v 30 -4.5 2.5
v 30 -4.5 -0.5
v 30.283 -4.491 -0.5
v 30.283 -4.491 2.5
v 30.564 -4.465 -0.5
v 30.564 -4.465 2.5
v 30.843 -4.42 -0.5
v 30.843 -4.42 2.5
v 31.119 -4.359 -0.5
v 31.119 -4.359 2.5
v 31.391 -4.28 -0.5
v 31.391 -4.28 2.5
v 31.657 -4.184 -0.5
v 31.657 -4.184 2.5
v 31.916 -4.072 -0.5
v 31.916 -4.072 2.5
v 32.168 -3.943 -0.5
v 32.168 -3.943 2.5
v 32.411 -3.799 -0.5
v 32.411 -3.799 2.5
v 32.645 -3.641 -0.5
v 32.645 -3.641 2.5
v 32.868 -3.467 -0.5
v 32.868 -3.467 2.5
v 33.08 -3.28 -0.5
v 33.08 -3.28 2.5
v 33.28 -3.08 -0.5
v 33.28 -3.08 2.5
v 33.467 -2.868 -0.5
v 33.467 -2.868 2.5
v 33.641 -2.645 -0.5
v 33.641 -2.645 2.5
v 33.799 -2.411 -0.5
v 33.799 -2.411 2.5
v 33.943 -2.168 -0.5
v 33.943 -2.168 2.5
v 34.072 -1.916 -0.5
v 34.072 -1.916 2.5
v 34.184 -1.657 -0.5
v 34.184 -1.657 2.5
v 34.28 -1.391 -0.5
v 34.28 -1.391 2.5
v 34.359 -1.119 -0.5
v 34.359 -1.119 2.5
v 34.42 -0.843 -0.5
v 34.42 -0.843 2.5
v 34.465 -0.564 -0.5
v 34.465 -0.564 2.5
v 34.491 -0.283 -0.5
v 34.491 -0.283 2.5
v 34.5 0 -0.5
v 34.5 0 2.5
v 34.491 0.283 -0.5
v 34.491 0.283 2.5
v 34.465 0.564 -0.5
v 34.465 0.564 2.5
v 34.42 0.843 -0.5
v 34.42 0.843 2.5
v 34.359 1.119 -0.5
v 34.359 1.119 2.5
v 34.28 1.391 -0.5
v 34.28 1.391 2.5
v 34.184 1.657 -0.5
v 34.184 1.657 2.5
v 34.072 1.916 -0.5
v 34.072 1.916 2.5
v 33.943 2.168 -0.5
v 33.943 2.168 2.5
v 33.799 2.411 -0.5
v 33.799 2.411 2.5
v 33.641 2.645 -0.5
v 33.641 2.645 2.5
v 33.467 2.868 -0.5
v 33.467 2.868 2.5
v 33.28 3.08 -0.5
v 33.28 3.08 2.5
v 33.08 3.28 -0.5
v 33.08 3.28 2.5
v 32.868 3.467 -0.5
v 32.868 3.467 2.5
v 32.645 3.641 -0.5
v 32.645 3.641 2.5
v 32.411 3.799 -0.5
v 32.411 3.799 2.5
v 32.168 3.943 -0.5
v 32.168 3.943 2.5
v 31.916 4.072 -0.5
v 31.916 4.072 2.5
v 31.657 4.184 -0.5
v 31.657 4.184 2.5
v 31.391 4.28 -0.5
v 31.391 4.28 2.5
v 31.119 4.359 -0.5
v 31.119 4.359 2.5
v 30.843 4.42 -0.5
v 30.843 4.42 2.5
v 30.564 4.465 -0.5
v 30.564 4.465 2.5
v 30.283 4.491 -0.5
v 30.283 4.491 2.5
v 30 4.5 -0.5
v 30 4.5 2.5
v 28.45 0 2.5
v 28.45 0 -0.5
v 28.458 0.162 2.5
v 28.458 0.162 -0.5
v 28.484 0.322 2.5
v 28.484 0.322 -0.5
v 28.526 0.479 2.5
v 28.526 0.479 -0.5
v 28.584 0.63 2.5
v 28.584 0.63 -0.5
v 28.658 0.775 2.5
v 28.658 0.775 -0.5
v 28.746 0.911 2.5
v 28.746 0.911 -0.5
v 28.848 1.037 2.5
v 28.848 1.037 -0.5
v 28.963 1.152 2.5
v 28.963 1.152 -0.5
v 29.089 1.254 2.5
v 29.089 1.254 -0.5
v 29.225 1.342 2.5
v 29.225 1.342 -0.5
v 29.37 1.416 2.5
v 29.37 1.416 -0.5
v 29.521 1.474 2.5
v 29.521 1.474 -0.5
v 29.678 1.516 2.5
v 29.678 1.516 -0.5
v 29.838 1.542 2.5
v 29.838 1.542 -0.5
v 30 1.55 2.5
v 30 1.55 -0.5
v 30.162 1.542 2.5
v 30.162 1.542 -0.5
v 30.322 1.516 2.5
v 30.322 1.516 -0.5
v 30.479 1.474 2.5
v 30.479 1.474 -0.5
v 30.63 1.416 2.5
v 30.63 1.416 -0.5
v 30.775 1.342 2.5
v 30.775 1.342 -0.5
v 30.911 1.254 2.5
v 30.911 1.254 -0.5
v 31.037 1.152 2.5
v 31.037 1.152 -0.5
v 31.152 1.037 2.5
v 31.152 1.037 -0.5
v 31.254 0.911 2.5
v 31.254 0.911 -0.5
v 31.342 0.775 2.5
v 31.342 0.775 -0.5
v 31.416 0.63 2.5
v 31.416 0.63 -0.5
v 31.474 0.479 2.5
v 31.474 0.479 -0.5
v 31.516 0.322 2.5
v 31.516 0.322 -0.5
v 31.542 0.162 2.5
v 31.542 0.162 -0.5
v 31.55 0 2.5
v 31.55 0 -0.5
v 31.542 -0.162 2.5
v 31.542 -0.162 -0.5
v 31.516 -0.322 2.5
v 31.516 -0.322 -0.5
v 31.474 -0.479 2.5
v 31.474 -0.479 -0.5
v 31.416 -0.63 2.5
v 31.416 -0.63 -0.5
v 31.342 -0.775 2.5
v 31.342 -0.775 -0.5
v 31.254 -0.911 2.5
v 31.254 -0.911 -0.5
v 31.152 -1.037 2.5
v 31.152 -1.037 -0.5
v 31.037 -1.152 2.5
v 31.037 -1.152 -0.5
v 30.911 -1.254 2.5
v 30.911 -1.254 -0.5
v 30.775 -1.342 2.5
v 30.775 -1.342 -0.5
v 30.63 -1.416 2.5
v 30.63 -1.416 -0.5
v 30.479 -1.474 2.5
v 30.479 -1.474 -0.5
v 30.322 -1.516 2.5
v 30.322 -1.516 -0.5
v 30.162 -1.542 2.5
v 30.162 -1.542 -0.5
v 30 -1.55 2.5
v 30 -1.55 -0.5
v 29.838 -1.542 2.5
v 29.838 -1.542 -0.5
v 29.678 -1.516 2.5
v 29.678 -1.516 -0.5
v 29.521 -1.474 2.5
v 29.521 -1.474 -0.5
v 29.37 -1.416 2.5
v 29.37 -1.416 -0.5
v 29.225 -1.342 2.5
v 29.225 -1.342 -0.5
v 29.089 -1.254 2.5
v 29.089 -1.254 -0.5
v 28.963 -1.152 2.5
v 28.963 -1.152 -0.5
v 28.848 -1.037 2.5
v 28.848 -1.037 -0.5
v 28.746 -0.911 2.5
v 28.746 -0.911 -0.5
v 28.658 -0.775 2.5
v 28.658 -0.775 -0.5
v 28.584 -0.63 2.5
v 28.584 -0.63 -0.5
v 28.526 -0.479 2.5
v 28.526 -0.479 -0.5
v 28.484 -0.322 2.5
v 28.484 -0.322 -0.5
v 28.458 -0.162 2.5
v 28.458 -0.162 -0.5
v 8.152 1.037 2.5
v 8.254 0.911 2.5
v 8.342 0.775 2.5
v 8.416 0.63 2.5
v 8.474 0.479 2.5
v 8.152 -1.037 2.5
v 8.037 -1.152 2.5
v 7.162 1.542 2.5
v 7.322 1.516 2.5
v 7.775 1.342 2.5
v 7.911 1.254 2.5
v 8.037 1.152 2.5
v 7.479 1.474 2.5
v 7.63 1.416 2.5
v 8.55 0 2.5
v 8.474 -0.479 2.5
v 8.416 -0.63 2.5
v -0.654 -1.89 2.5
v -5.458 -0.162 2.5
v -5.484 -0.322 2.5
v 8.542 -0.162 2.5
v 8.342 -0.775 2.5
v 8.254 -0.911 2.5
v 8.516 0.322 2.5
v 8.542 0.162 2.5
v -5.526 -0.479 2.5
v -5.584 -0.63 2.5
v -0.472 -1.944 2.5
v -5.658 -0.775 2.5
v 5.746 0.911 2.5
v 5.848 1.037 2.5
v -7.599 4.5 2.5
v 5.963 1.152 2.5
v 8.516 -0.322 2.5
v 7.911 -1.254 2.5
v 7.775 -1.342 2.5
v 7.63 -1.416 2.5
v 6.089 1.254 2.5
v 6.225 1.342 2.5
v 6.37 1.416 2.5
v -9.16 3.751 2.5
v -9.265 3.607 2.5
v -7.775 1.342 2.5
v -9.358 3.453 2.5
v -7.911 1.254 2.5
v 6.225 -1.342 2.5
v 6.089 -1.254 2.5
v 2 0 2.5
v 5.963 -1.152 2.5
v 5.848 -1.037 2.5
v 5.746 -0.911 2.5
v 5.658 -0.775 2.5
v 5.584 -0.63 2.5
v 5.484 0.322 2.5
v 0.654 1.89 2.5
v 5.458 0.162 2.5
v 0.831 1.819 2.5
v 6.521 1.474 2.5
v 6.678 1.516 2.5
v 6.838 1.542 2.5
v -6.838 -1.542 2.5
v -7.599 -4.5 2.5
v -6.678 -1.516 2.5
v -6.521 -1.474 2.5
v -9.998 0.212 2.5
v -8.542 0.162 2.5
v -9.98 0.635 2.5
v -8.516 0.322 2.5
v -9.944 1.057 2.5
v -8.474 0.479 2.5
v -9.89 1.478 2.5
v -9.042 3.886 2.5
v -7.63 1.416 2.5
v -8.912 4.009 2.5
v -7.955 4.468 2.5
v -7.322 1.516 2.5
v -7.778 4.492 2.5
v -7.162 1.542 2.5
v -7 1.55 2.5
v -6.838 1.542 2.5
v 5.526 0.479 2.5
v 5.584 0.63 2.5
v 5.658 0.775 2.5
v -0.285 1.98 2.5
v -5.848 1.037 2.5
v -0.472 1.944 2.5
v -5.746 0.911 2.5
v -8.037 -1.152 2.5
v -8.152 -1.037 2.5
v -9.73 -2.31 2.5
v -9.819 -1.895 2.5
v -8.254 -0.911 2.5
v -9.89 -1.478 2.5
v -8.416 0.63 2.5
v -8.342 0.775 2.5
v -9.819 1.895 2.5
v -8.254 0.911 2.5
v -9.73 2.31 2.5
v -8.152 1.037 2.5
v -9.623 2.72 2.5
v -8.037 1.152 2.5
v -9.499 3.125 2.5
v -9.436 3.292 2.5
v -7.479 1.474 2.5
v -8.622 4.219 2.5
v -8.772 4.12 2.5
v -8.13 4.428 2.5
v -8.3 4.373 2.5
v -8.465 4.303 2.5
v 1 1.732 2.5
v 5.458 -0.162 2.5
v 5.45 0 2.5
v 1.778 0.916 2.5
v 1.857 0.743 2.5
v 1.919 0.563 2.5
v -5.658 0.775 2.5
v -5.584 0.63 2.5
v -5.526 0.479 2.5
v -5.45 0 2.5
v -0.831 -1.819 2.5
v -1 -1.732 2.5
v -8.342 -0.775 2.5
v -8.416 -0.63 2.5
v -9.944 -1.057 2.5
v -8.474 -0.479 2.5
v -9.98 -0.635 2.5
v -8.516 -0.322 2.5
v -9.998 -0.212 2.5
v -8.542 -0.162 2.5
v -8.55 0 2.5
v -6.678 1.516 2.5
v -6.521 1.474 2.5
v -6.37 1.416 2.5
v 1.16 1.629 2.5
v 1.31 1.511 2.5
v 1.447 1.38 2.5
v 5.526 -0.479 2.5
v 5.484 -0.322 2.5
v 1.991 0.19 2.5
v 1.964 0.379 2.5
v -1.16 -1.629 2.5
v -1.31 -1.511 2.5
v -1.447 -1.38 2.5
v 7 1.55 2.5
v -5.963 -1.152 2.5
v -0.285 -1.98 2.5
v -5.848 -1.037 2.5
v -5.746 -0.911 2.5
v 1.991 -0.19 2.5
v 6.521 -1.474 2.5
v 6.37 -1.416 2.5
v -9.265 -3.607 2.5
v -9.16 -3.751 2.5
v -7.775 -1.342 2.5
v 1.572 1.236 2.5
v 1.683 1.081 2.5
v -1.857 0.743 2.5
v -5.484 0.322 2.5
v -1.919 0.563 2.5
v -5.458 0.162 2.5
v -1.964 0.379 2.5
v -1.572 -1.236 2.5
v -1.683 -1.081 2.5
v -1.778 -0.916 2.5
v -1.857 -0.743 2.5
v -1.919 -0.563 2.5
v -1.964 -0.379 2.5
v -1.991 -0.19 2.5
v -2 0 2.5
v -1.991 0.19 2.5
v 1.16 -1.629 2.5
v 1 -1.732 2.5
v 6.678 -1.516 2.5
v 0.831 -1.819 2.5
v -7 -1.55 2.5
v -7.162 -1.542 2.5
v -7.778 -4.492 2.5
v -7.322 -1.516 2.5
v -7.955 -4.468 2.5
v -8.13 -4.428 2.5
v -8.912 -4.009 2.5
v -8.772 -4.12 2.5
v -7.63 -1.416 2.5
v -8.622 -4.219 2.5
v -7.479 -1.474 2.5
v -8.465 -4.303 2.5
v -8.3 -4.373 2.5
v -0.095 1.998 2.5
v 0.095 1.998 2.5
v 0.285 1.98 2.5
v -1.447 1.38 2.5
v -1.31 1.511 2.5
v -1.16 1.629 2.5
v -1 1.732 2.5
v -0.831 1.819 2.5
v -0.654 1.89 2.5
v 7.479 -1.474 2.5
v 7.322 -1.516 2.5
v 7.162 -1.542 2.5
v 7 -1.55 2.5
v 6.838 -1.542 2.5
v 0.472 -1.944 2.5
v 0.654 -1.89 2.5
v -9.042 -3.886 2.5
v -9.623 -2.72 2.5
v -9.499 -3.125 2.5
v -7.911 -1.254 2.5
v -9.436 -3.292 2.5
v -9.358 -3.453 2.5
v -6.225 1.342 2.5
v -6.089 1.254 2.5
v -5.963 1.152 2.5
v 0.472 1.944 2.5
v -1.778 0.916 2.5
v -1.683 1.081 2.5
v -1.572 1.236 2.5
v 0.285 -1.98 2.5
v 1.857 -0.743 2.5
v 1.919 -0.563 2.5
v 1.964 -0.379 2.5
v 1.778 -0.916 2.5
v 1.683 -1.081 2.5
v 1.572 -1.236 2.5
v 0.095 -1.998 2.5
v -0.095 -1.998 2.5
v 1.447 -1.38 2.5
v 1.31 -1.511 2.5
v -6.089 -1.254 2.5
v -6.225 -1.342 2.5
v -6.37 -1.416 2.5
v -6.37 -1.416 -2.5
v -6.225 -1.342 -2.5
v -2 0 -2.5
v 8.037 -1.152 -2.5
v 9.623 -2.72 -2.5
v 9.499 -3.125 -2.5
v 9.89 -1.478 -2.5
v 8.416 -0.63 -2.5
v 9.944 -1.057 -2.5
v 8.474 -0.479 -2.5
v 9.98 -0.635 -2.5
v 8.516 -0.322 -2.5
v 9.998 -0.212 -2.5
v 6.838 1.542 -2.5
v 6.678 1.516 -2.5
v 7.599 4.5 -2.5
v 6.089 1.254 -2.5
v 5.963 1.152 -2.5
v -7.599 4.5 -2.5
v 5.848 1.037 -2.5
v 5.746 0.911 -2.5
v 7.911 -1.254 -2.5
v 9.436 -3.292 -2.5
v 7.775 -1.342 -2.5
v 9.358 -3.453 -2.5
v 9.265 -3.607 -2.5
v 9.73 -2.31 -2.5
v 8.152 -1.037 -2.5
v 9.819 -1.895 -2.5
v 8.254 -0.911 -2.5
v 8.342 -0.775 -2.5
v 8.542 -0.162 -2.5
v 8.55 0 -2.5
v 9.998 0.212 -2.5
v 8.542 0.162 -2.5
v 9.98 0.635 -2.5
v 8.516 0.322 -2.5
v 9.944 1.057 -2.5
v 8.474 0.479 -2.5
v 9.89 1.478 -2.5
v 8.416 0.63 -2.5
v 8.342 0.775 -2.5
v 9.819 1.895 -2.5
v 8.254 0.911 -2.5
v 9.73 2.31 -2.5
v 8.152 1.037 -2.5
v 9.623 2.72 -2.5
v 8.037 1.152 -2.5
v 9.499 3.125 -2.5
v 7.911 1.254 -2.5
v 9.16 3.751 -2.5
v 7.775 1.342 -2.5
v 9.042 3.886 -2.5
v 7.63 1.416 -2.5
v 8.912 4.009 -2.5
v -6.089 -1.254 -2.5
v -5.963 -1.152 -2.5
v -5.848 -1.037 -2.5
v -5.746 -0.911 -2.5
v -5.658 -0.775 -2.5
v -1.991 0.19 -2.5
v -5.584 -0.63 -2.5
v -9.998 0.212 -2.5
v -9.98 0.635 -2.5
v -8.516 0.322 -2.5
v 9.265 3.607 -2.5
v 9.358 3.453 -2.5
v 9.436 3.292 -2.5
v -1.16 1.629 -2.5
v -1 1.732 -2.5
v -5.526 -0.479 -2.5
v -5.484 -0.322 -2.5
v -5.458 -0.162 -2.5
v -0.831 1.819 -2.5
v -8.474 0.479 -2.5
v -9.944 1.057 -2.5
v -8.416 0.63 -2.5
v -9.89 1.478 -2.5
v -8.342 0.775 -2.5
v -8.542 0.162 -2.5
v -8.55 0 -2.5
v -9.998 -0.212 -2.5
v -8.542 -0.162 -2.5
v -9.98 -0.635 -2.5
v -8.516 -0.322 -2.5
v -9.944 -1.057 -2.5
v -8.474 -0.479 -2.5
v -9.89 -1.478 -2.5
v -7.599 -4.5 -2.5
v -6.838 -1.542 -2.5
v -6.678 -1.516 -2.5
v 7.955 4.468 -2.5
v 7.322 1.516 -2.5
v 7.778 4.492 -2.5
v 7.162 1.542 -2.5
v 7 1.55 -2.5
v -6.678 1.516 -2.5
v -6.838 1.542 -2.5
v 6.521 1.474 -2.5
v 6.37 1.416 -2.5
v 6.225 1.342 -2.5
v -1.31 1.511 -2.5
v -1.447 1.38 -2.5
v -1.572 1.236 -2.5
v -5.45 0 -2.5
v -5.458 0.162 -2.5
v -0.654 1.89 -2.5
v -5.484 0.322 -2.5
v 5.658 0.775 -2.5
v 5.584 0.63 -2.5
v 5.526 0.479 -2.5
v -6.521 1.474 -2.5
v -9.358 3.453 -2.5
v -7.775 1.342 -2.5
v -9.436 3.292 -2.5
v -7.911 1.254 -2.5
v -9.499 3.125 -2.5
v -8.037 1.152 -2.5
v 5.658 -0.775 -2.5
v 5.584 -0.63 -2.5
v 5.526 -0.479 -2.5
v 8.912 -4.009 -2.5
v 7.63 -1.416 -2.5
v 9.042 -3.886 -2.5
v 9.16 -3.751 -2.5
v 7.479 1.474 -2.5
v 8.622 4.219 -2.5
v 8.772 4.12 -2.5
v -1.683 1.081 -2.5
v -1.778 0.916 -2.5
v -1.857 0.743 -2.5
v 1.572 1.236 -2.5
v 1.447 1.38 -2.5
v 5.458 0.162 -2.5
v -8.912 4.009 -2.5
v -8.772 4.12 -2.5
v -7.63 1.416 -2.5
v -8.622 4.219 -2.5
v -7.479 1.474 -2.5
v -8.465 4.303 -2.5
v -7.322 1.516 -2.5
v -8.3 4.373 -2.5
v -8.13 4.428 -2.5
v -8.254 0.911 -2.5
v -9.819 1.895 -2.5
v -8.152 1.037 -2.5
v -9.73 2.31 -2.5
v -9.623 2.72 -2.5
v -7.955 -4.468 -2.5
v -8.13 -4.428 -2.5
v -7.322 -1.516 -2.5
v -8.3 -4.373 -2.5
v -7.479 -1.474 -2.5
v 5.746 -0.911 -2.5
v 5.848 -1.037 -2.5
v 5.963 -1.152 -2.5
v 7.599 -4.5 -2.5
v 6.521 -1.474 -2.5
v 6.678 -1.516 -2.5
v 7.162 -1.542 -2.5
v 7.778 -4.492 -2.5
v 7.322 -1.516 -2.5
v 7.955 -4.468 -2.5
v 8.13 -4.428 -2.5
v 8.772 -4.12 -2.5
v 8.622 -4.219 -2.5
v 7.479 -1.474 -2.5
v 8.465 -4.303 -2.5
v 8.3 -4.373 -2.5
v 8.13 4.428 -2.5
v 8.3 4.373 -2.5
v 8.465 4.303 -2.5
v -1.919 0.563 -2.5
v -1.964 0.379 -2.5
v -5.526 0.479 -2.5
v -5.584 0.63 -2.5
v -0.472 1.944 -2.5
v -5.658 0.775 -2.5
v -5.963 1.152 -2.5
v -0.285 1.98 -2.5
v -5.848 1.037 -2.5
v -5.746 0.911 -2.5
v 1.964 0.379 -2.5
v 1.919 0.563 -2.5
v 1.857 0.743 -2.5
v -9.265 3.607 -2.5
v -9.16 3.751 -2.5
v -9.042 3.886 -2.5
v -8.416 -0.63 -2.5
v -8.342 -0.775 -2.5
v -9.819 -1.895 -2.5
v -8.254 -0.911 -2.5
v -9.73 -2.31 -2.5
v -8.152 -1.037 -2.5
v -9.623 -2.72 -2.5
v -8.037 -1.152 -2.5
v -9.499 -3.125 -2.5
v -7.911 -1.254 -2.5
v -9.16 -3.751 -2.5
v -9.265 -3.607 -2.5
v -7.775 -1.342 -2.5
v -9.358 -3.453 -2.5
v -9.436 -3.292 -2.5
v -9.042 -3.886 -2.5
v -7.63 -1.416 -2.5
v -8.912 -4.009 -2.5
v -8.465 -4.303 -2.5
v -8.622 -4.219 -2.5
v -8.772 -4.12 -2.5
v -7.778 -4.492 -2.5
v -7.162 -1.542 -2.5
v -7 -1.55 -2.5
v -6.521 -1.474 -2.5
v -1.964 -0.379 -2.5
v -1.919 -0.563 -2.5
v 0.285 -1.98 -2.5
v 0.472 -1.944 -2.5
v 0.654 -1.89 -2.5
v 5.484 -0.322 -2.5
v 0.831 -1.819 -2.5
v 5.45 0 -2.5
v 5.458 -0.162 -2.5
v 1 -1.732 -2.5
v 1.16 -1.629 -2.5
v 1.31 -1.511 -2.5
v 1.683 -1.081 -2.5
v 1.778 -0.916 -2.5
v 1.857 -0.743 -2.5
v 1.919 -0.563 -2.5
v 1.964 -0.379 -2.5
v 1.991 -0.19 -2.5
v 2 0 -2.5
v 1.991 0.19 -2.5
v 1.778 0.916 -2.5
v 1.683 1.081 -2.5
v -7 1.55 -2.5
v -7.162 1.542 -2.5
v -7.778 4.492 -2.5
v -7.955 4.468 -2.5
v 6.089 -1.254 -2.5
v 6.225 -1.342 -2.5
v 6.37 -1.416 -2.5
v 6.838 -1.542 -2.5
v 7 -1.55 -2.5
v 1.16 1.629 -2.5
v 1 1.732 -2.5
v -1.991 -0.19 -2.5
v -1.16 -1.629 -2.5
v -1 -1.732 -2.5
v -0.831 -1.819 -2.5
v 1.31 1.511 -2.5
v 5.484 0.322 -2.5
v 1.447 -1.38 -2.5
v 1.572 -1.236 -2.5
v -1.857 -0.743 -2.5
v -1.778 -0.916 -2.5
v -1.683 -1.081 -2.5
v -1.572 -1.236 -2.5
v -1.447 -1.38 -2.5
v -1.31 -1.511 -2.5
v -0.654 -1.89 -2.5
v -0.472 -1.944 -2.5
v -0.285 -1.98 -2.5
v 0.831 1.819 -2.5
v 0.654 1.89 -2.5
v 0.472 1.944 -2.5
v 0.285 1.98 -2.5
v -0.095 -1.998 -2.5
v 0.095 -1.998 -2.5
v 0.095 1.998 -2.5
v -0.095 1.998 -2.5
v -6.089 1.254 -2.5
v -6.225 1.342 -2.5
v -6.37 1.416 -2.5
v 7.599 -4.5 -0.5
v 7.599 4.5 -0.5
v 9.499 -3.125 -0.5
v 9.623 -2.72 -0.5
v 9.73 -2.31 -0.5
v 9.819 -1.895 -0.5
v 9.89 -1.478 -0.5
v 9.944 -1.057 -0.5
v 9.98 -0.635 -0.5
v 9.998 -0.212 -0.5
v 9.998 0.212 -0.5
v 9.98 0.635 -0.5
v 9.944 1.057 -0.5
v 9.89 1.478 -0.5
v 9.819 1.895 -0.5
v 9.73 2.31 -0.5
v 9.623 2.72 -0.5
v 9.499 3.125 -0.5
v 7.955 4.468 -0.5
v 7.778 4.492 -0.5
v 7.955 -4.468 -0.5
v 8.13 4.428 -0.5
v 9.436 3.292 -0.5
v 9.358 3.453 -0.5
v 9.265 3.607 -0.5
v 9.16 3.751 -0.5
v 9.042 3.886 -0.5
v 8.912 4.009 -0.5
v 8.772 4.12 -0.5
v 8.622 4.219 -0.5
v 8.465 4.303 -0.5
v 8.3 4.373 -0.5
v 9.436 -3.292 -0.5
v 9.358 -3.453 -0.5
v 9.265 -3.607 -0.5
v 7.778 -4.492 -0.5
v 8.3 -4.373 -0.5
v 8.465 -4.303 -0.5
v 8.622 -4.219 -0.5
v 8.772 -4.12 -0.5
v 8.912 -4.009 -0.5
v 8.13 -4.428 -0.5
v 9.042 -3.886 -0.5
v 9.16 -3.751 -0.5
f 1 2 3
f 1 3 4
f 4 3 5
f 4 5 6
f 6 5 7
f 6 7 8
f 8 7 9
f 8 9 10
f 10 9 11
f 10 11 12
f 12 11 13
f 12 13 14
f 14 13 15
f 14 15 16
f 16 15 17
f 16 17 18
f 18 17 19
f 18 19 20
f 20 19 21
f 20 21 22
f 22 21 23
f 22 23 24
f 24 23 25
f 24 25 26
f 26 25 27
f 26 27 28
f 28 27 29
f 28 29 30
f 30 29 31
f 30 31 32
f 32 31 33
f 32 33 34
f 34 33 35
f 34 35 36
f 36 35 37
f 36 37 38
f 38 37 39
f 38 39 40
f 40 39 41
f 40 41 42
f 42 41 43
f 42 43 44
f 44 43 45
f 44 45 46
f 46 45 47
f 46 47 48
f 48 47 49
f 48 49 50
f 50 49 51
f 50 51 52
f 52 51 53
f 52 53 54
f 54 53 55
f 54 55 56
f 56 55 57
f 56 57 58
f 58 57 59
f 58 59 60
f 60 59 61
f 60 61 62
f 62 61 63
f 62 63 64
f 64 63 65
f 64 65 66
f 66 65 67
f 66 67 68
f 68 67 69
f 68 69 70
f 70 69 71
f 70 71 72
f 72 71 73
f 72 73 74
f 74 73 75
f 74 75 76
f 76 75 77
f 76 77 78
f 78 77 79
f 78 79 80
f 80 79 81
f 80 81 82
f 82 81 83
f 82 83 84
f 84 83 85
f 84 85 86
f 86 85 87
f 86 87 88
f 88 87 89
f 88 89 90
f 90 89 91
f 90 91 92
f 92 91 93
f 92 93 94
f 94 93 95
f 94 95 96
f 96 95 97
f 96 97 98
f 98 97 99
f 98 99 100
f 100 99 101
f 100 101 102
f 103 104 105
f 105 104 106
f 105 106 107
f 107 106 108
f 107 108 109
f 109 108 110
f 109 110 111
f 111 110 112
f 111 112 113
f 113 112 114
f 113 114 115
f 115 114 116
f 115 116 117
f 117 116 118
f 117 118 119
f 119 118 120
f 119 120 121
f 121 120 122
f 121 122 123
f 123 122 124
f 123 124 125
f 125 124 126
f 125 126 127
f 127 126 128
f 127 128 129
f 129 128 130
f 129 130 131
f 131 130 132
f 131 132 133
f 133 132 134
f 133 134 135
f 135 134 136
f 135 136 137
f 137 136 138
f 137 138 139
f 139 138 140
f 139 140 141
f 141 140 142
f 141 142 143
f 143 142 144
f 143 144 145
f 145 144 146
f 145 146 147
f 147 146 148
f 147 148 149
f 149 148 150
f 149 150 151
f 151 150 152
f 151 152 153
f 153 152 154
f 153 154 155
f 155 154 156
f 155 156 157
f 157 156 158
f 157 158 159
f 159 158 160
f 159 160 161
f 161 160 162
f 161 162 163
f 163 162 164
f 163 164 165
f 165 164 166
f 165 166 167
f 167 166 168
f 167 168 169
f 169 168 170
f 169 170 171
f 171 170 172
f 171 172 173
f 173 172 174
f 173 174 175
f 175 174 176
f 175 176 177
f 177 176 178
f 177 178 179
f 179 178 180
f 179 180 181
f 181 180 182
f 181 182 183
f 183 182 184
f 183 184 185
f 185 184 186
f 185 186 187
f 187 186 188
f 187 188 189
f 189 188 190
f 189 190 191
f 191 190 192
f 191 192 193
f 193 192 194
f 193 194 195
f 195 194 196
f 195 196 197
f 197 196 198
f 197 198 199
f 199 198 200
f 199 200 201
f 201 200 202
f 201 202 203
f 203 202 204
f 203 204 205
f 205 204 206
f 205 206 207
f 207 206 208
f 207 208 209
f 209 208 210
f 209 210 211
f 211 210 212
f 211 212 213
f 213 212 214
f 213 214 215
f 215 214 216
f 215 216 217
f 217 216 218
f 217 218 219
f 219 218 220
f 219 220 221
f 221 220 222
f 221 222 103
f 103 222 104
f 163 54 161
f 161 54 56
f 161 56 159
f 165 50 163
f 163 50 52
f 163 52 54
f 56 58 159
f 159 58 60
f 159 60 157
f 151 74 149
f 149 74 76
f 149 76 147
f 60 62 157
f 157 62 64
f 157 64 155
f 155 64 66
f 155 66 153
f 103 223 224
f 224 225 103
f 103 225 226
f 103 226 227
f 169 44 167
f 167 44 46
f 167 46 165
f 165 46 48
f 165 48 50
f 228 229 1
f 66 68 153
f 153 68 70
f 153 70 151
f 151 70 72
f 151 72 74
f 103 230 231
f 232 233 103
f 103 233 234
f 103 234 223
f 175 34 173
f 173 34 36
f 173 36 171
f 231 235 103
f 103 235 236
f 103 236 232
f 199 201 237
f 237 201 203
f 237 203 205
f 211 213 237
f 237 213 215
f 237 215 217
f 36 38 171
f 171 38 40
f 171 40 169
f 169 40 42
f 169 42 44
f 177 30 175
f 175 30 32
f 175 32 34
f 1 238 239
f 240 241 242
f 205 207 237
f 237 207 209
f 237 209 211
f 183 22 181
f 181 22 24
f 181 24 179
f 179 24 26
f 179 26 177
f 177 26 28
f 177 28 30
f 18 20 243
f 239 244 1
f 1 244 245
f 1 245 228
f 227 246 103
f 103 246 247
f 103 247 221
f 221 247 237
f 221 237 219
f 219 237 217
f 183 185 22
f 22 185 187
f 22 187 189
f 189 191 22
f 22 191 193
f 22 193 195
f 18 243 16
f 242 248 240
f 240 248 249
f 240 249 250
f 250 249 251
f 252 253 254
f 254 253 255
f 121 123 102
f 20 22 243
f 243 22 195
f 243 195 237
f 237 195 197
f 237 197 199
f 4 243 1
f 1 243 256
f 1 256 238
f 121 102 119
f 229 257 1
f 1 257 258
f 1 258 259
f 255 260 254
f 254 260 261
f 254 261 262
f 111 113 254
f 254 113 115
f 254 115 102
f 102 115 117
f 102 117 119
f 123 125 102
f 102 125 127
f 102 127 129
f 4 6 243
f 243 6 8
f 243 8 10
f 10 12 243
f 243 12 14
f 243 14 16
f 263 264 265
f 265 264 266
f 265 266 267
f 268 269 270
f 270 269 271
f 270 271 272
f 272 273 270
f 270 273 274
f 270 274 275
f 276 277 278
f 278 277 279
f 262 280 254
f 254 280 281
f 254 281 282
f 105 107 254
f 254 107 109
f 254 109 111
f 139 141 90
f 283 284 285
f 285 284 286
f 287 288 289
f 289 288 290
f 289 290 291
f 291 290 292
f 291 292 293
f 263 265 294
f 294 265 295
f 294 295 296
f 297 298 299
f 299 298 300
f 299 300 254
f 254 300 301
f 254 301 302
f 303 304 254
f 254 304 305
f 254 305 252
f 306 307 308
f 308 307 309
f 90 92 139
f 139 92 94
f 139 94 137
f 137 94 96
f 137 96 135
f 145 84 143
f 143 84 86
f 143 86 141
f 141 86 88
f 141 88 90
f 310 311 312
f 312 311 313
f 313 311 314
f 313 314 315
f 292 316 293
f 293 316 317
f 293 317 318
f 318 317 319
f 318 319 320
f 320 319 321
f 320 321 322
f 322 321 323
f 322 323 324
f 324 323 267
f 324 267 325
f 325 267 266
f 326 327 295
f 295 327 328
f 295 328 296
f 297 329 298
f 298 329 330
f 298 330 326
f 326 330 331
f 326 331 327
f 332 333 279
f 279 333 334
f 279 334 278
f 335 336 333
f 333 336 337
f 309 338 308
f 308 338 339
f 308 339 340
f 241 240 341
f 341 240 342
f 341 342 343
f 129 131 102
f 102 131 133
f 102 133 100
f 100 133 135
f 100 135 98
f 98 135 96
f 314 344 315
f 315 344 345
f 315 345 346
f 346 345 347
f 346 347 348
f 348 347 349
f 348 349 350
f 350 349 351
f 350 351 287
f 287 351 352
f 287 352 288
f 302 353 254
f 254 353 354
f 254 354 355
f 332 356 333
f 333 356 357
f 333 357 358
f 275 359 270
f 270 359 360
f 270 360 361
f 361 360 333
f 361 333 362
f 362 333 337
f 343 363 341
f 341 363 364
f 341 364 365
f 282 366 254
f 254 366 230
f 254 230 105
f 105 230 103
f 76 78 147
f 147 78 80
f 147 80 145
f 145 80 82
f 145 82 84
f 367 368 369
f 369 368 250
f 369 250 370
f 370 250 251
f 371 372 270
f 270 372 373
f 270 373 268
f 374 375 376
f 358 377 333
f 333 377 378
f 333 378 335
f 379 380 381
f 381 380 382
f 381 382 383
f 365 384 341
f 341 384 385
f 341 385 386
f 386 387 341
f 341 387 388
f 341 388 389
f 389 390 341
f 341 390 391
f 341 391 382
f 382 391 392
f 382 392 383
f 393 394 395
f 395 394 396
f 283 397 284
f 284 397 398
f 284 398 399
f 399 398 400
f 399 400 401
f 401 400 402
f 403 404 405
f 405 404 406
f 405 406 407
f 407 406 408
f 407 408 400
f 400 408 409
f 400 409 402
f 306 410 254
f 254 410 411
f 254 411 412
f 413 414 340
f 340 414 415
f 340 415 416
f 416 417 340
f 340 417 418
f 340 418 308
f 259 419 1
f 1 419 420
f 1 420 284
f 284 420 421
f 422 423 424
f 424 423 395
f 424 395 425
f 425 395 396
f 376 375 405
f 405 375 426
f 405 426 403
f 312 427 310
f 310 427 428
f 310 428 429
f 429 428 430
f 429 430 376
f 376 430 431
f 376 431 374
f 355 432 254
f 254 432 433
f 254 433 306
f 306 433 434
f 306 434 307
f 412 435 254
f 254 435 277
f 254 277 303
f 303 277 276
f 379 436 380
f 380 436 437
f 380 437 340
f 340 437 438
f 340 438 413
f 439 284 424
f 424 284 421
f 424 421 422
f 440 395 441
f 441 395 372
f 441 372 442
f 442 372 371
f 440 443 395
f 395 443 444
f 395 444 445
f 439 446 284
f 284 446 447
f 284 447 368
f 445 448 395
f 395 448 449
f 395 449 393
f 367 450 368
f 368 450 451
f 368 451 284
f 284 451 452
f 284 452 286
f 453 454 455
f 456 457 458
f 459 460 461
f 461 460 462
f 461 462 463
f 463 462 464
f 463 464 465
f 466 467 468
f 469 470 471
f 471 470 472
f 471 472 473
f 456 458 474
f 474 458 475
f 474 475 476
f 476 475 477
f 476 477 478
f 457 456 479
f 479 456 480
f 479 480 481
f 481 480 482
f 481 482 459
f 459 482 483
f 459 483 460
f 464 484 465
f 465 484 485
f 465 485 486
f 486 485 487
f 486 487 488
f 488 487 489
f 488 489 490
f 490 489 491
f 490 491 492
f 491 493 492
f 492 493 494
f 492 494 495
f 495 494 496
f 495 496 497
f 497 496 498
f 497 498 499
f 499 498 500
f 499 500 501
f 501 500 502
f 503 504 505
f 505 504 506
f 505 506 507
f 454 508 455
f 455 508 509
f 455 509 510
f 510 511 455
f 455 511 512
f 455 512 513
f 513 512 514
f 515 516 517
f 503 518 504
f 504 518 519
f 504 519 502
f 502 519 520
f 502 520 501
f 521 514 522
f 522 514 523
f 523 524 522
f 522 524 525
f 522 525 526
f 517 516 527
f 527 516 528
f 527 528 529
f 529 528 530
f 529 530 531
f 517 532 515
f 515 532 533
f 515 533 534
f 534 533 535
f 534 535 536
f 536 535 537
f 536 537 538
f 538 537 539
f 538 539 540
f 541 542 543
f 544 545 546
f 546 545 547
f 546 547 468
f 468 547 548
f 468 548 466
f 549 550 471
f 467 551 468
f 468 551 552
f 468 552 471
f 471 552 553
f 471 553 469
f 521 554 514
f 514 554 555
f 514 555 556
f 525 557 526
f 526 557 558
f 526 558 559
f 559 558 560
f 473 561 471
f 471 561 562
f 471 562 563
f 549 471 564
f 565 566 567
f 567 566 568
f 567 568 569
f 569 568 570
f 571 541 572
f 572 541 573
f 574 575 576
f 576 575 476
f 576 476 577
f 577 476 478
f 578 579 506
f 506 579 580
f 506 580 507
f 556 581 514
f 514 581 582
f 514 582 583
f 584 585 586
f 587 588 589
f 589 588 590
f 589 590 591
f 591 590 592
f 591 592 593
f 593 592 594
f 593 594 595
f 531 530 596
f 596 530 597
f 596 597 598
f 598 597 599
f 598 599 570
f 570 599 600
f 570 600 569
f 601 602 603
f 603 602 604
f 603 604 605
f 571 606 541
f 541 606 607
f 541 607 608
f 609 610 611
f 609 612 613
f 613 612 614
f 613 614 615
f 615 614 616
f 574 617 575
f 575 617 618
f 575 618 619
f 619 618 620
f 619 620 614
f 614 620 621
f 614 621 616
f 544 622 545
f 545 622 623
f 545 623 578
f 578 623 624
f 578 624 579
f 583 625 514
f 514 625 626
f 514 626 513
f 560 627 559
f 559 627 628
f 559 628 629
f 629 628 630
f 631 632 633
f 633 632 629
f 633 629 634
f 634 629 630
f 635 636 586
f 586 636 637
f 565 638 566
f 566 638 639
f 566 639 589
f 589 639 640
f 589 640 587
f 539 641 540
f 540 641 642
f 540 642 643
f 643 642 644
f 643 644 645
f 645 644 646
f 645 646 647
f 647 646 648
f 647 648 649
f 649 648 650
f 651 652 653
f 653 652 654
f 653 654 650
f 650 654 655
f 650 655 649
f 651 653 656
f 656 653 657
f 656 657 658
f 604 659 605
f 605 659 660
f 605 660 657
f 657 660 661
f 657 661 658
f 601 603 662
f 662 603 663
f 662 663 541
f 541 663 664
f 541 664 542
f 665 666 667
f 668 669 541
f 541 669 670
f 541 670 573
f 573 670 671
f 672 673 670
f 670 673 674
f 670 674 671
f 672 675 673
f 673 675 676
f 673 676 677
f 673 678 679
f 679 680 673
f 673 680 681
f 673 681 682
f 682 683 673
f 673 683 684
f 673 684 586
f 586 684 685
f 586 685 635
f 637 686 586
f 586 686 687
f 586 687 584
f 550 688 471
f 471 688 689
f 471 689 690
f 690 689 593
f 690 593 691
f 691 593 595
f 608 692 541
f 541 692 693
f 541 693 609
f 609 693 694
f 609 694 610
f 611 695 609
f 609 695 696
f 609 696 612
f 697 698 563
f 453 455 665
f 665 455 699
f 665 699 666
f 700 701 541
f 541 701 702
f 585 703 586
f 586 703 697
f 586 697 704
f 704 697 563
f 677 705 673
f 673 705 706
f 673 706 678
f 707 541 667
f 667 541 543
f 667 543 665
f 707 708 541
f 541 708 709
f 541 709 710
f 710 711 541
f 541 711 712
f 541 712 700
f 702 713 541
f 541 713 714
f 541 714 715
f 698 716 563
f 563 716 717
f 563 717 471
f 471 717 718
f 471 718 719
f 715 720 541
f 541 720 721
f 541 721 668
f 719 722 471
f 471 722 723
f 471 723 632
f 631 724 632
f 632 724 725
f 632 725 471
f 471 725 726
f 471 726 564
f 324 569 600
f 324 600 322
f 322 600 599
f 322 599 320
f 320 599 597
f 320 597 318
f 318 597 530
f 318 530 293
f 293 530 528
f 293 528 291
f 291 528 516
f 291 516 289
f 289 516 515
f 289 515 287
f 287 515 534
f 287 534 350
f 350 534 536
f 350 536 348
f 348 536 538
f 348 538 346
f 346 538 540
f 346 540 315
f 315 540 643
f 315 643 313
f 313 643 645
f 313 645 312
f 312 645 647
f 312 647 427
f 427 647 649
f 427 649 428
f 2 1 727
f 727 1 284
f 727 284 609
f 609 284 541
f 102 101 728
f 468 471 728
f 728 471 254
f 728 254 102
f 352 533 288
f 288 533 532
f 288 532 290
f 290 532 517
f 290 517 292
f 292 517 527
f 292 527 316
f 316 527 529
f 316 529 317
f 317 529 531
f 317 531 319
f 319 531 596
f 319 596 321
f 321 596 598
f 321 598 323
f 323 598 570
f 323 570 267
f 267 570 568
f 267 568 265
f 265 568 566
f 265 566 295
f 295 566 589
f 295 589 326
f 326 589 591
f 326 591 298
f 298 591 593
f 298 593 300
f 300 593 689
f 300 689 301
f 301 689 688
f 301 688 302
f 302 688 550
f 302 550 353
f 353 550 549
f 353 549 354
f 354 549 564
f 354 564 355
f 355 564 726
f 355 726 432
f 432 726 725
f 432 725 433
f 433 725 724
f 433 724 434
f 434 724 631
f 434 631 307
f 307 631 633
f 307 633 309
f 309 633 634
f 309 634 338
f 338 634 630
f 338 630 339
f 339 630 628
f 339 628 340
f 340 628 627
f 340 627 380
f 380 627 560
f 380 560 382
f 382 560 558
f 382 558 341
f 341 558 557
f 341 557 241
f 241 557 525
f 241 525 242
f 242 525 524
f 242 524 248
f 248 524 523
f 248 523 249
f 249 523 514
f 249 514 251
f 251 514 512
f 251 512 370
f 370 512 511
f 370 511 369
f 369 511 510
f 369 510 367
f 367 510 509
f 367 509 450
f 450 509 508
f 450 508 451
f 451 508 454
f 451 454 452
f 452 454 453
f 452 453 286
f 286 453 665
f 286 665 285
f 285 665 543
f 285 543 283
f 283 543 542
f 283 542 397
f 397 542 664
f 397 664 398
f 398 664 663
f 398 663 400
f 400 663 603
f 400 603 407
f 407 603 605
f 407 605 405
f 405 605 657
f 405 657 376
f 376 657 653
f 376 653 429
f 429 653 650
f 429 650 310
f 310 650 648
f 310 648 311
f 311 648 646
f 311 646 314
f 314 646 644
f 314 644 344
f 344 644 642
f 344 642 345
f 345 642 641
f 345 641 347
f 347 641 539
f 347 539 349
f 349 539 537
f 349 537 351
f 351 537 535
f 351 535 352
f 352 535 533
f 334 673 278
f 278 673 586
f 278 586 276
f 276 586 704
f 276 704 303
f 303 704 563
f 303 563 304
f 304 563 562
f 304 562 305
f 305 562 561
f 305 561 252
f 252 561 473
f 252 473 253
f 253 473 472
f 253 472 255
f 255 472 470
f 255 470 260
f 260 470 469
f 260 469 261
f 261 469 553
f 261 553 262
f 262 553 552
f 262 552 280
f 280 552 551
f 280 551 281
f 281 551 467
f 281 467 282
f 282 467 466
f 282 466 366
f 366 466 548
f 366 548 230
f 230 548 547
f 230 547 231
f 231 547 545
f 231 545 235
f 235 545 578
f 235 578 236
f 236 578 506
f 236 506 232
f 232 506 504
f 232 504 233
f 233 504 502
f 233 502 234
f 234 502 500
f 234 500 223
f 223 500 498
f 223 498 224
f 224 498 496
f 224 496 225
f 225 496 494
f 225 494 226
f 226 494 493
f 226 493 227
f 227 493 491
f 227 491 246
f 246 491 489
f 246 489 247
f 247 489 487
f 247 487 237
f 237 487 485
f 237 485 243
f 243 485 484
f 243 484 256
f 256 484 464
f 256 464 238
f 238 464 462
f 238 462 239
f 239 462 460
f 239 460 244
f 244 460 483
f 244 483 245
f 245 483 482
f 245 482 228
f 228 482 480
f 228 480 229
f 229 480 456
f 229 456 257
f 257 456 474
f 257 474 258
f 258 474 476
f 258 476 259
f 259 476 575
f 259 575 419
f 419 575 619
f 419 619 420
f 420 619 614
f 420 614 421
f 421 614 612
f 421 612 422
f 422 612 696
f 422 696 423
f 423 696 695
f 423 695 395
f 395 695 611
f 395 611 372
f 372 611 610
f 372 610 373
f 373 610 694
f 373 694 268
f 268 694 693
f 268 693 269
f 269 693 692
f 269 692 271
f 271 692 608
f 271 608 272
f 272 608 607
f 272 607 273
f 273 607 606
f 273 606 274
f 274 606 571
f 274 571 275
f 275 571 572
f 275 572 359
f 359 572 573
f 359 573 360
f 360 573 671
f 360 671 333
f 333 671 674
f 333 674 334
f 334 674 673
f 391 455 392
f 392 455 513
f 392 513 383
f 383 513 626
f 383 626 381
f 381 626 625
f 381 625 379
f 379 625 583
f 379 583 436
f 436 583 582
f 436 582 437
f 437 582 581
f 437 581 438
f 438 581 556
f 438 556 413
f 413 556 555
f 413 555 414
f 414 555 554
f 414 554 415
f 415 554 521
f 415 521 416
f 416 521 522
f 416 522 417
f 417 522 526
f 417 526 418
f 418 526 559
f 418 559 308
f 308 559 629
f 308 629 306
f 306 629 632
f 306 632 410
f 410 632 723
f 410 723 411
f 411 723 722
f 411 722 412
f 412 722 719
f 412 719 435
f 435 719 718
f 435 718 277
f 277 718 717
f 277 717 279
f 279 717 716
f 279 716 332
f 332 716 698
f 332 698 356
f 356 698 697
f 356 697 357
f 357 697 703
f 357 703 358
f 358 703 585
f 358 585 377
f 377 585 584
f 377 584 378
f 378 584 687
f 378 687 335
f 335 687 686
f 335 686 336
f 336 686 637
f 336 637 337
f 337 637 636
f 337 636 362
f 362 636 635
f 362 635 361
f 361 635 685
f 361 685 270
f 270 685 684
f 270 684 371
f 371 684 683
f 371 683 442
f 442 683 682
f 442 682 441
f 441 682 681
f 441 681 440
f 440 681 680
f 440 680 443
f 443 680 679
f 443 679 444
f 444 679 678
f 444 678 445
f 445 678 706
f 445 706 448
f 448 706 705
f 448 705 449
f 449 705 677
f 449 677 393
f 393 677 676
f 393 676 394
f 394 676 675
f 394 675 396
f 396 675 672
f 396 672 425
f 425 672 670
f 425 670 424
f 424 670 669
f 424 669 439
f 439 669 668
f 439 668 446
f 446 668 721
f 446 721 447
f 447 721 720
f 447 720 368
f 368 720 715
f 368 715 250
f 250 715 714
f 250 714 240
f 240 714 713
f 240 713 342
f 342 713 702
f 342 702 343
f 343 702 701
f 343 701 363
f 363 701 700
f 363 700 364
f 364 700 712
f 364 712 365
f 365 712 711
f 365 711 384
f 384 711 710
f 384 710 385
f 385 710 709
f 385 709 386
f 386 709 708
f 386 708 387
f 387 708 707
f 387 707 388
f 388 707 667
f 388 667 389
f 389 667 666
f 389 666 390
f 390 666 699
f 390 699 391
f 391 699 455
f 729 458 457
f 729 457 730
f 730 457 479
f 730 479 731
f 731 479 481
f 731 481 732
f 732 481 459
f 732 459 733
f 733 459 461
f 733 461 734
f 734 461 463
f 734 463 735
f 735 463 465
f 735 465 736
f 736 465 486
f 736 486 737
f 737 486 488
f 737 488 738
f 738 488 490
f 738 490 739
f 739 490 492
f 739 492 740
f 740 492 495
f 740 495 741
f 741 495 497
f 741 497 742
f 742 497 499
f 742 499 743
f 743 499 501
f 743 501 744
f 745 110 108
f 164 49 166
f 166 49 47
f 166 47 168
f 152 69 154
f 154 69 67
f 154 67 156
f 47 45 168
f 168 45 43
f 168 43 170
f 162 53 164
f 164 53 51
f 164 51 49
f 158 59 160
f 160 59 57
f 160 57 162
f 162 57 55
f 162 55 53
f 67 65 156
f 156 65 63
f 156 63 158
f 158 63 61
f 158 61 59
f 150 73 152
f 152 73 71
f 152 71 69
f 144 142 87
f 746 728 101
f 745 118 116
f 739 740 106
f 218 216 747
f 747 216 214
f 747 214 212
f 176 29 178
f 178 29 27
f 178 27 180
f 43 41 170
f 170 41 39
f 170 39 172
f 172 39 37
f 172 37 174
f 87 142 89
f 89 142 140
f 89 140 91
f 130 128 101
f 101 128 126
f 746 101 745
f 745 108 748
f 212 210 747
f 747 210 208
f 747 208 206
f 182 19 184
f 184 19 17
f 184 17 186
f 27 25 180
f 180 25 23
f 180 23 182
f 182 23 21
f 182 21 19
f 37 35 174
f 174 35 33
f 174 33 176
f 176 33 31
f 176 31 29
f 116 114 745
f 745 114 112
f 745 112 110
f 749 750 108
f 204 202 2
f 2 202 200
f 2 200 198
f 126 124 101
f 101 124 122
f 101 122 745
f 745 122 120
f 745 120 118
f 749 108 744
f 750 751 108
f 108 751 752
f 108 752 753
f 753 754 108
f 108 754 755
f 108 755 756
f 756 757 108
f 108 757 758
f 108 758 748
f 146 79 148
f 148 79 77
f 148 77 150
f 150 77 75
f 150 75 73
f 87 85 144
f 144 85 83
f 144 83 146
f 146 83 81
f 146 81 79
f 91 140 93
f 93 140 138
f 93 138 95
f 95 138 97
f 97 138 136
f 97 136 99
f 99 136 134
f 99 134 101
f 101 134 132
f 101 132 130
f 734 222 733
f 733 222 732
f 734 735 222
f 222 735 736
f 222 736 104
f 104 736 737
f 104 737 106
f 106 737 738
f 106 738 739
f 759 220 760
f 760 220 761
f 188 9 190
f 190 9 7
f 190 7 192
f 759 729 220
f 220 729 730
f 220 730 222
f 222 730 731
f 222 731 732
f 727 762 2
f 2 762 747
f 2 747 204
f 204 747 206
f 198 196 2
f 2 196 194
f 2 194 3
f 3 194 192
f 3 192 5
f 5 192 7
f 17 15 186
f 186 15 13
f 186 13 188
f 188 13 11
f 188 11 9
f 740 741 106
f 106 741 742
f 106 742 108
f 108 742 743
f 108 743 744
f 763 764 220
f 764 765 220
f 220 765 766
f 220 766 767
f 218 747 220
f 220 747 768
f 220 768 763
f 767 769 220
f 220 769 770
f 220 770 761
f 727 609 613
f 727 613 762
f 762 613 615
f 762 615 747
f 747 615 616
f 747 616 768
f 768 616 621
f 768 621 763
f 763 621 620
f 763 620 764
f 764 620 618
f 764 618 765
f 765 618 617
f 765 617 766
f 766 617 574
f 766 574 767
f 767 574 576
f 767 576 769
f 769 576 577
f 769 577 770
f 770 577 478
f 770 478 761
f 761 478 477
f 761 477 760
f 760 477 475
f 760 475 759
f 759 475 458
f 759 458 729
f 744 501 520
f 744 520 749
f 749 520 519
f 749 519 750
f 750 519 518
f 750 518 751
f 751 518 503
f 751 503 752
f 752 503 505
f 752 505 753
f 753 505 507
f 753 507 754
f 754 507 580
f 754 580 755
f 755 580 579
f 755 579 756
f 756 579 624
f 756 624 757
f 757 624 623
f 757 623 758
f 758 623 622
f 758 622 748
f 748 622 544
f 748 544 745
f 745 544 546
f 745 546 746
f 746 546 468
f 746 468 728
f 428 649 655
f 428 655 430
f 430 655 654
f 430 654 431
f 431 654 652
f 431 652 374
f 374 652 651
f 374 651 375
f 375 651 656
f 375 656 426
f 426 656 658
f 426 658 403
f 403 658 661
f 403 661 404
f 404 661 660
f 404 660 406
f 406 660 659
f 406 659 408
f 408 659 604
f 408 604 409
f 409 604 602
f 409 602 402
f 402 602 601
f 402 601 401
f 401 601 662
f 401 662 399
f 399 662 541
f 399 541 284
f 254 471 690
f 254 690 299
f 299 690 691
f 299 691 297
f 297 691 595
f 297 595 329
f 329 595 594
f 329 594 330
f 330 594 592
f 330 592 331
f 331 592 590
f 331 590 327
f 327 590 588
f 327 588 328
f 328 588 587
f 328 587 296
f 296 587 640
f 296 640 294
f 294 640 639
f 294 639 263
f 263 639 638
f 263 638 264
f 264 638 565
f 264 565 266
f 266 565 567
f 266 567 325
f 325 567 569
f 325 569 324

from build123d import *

# Parameters (mm, degrees)
SKETCH1_R           = 1.55
SKETCH1_R_2         = 2
BOSS_EXTRUDE1_DEPTH = 2.5
CUT_EXTRUDE1_START  = -2
CUT_EXTRUDE1_DEPTH  = 2
FILLET1_R           = 2


with BuildPart() as part:
    # Sketch1 → Boss-Extrude1 (new, symmetric)
    with BuildSketch(Plane.XY):
        with BuildLine():
            Line((-8.93028555, 4.5), (30, 4.5))
            ThreePointArc((30, 4.5), (34.5, 0), (30, -4.5))
            Line((30, -4.5), (-8.93028555, -4.5))
            ThreePointArc((-8.93028555, -4.5), (-10, 0), (-8.93028555, 4.5))
        make_face()
        with Locations((-7, 0)):
            Circle(SKETCH1_R, mode=Mode.SUBTRACT)
        with Locations((7, 0)):
            Circle(SKETCH1_R, mode=Mode.SUBTRACT)
        with Locations((30, 0)):
            Circle(SKETCH1_R, mode=Mode.SUBTRACT)
        Circle(SKETCH1_R_2, mode=Mode.SUBTRACT)
    extrude(amount=BOSS_EXTRUDE1_DEPTH, both=True)

    # Sketch2 → Cut-Extrude1 (cut)
    with BuildSketch(Plane(origin=(0, 0, -2.5), x_dir=(-1, 0, 0), z_dir=(0, 0, -1)).offset(CUT_EXTRUDE1_START)):
        with BuildLine():
            Line((-30, 4.5), (-8.93028555, 4.5))
            ThreePointArc((-8.93028555, 4.5), (-10, 0), (-8.93028555, -4.5))
            Line((-8.93028555, -4.5), (-30, -4.5))
            ThreePointArc((-30, -4.5), (-34.5, 0), (-30, 4.5))
        make_face()
    extrude(amount=CUT_EXTRUDE1_DEPTH, mode=Mode.SUBTRACT)

    # Fillet1
    fillet1_edges = [part.edges().sort_by_distance(p)[0] for p in [
        (8.93028555, 4.5, -1.5),
        (8.93028555, -4.5, -1.5),
        (-8.93028555, 4.5, 0),
        (-8.93028555, -4.5, 0),
    ]]
    fillet(fillet1_edges, radius=FILLET1_R)


solid = part.part
